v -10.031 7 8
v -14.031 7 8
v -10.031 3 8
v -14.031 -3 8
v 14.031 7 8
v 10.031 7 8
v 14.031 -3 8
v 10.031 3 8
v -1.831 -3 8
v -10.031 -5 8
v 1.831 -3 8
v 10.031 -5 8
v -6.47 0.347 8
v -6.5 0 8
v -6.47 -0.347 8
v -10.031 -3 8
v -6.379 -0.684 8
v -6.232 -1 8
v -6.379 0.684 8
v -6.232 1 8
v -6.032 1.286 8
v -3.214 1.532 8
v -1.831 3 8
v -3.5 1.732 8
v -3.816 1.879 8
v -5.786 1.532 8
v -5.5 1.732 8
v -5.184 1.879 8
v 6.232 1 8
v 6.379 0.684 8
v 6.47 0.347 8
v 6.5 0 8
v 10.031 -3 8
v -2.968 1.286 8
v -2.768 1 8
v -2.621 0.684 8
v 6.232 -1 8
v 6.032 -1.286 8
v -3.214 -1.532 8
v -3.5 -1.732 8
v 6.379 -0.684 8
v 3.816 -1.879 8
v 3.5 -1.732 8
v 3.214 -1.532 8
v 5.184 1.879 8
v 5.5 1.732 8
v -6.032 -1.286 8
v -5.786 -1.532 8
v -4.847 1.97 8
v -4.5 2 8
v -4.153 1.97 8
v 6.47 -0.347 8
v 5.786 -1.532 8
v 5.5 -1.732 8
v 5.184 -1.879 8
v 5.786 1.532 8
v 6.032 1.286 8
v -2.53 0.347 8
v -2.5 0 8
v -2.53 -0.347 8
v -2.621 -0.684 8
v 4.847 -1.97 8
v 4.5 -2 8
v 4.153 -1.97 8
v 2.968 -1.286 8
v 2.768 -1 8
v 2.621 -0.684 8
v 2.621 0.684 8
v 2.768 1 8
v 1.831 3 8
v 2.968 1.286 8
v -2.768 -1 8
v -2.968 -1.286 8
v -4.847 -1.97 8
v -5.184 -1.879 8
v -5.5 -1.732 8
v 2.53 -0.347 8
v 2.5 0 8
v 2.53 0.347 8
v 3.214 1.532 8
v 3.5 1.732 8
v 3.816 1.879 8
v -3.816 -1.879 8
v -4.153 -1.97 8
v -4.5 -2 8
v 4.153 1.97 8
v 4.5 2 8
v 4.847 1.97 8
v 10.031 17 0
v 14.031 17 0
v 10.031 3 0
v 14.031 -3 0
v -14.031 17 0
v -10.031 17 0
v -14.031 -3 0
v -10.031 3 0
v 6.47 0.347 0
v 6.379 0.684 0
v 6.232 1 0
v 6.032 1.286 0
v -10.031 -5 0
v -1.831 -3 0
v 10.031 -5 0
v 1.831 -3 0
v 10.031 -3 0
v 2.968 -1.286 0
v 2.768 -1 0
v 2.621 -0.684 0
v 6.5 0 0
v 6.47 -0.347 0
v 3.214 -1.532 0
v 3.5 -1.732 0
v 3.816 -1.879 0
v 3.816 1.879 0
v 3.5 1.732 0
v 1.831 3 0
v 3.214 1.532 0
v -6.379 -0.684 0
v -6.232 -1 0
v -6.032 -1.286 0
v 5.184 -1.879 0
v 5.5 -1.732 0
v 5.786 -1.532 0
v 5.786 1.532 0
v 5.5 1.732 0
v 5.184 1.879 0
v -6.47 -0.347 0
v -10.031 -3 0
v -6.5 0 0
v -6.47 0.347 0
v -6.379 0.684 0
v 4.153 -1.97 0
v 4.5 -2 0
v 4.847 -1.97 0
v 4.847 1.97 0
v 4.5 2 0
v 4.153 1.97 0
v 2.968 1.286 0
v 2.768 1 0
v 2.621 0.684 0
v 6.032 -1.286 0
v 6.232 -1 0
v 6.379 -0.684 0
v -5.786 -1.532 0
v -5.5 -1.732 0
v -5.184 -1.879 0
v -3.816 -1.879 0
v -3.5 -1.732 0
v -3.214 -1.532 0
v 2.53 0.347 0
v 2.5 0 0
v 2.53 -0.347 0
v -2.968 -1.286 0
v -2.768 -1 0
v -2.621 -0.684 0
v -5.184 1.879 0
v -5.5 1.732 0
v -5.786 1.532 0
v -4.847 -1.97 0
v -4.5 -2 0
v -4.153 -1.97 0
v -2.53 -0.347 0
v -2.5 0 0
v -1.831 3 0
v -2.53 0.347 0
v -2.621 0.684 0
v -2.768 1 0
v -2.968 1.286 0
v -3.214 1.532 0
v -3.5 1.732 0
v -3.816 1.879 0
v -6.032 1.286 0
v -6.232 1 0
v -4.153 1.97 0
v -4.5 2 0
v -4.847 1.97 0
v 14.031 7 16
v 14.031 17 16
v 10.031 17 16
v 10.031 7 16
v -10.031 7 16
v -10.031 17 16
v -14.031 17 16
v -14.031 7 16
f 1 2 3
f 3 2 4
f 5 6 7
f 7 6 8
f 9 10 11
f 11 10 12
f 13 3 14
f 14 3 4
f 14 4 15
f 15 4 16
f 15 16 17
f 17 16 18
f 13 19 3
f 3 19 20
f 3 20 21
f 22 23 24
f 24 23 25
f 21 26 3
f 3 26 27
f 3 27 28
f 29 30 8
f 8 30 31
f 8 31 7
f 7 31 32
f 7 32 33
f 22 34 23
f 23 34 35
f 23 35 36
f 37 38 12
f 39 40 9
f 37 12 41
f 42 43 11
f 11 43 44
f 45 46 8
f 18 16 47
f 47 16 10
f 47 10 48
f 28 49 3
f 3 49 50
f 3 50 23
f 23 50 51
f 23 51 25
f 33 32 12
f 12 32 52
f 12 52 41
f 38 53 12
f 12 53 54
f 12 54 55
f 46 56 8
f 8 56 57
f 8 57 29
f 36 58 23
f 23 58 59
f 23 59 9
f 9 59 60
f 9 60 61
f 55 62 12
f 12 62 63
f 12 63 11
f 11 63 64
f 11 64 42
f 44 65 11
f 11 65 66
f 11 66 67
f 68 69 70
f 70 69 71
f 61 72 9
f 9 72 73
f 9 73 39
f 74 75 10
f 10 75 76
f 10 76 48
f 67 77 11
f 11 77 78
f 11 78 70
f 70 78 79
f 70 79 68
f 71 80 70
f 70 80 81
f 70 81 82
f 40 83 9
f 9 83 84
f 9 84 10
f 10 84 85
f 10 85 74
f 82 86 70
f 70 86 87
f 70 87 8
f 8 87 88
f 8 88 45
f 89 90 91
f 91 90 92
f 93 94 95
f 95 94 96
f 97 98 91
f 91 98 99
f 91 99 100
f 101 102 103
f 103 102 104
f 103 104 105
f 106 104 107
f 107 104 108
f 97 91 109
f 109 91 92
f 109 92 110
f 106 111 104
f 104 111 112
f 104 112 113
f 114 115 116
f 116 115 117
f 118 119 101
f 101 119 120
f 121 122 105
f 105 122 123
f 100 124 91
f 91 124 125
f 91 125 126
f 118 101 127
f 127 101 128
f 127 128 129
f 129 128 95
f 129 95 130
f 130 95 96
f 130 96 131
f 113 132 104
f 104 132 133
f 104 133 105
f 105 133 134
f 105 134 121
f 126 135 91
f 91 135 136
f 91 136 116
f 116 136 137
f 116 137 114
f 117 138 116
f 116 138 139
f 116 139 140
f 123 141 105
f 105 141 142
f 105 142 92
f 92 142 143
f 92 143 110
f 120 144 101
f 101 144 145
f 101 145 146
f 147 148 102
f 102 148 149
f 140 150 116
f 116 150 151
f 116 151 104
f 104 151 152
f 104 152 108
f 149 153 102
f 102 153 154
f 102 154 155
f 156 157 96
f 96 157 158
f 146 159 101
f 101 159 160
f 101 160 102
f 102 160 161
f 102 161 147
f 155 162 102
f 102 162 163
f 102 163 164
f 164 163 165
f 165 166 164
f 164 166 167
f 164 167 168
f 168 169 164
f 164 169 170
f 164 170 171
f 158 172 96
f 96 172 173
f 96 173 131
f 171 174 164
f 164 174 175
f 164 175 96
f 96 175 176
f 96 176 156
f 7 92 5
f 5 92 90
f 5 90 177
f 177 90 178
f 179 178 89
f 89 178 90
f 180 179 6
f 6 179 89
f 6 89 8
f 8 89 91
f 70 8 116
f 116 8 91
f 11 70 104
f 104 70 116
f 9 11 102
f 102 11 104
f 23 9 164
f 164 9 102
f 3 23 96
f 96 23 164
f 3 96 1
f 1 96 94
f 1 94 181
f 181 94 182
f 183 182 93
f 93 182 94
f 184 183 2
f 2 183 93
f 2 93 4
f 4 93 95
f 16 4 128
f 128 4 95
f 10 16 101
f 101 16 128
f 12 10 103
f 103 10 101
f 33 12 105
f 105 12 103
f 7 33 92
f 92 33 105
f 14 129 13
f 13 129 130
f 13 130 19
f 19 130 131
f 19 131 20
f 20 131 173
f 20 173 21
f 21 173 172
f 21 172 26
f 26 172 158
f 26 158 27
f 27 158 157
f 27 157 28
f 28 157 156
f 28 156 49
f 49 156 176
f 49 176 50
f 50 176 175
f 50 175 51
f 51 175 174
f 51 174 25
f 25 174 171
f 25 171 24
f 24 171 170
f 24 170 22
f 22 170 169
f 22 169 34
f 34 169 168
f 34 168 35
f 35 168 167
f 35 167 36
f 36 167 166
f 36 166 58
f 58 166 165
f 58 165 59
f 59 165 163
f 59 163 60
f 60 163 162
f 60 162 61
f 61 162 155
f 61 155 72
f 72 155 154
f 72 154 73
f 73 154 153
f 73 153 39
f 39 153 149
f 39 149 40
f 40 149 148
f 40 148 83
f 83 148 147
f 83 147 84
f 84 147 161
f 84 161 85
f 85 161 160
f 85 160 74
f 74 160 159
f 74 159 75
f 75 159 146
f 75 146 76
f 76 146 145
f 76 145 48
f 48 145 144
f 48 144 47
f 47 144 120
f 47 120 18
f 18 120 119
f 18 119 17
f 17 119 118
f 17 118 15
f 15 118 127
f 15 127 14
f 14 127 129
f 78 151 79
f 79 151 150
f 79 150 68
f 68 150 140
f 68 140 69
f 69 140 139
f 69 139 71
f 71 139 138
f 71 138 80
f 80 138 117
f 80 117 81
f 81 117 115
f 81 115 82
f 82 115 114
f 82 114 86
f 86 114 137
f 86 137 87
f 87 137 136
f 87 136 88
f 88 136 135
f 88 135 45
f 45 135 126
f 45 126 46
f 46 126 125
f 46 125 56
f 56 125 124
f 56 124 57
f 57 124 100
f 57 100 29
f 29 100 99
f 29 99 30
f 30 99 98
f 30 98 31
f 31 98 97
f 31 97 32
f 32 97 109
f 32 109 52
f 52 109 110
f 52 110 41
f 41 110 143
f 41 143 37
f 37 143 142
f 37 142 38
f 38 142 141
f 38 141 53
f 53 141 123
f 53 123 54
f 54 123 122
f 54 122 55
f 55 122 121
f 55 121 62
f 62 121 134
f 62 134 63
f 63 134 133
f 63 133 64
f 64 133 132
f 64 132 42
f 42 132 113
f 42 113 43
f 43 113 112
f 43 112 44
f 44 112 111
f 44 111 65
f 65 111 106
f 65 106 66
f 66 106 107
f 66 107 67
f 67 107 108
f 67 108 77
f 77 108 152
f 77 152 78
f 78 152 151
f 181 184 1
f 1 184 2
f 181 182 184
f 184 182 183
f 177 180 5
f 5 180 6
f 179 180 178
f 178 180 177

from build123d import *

# Parameters (mm, degrees)
SKETCH_1_R      = 2
EXTRUDE_1_DEPTH = 8
SKETCH_2_W      = 4
SKETCH_2_H      = 10
EXTRUDE_2_DEPTH = 8


with BuildPart() as part:
    # 草图1 → 凸台-拉伸1 (new body)
    with BuildSketch(Plane.XY):
        Polygon((-1.831289914, -3), (-1.831289914, 3), (-10.031289914, 3), (-10.031289914, 17), (-14.031289914, 17), (-14.031289914, -3), (-10.031289914, -3), (-10.031289914, -5), (10.031289914, -5), (10.031289914, -3), (14.031289914, -3), (14.031289914, 17), (10.031289914, 17), (10.031289914, 3), (1.831289914, 3), (1.831289914, -3), align=None)
        with Locations((-4.5, 0)):
            Circle(SKETCH_1_R, mode=Mode.SUBTRACT)
        with Locations(Location((4.5, 0, 0), (0, 0, 180))):
            Circle(SKETCH_1_R, mode=Mode.SUBTRACT)
    extrude(amount=EXTRUDE_1_DEPTH)

    # 草图2 → 凸台-拉伸2 (add)
    with BuildSketch(Plane.XY.offset(8)):
        with Locations((-12.031289914, 12)):
            Rectangle(SKETCH_2_W, SKETCH_2_H)
        with Locations((12.031289914, 12)):
            Rectangle(SKETCH_2_W, SKETCH_2_H)
    extrude(amount=EXTRUDE_2_DEPTH)


solid = part.part
